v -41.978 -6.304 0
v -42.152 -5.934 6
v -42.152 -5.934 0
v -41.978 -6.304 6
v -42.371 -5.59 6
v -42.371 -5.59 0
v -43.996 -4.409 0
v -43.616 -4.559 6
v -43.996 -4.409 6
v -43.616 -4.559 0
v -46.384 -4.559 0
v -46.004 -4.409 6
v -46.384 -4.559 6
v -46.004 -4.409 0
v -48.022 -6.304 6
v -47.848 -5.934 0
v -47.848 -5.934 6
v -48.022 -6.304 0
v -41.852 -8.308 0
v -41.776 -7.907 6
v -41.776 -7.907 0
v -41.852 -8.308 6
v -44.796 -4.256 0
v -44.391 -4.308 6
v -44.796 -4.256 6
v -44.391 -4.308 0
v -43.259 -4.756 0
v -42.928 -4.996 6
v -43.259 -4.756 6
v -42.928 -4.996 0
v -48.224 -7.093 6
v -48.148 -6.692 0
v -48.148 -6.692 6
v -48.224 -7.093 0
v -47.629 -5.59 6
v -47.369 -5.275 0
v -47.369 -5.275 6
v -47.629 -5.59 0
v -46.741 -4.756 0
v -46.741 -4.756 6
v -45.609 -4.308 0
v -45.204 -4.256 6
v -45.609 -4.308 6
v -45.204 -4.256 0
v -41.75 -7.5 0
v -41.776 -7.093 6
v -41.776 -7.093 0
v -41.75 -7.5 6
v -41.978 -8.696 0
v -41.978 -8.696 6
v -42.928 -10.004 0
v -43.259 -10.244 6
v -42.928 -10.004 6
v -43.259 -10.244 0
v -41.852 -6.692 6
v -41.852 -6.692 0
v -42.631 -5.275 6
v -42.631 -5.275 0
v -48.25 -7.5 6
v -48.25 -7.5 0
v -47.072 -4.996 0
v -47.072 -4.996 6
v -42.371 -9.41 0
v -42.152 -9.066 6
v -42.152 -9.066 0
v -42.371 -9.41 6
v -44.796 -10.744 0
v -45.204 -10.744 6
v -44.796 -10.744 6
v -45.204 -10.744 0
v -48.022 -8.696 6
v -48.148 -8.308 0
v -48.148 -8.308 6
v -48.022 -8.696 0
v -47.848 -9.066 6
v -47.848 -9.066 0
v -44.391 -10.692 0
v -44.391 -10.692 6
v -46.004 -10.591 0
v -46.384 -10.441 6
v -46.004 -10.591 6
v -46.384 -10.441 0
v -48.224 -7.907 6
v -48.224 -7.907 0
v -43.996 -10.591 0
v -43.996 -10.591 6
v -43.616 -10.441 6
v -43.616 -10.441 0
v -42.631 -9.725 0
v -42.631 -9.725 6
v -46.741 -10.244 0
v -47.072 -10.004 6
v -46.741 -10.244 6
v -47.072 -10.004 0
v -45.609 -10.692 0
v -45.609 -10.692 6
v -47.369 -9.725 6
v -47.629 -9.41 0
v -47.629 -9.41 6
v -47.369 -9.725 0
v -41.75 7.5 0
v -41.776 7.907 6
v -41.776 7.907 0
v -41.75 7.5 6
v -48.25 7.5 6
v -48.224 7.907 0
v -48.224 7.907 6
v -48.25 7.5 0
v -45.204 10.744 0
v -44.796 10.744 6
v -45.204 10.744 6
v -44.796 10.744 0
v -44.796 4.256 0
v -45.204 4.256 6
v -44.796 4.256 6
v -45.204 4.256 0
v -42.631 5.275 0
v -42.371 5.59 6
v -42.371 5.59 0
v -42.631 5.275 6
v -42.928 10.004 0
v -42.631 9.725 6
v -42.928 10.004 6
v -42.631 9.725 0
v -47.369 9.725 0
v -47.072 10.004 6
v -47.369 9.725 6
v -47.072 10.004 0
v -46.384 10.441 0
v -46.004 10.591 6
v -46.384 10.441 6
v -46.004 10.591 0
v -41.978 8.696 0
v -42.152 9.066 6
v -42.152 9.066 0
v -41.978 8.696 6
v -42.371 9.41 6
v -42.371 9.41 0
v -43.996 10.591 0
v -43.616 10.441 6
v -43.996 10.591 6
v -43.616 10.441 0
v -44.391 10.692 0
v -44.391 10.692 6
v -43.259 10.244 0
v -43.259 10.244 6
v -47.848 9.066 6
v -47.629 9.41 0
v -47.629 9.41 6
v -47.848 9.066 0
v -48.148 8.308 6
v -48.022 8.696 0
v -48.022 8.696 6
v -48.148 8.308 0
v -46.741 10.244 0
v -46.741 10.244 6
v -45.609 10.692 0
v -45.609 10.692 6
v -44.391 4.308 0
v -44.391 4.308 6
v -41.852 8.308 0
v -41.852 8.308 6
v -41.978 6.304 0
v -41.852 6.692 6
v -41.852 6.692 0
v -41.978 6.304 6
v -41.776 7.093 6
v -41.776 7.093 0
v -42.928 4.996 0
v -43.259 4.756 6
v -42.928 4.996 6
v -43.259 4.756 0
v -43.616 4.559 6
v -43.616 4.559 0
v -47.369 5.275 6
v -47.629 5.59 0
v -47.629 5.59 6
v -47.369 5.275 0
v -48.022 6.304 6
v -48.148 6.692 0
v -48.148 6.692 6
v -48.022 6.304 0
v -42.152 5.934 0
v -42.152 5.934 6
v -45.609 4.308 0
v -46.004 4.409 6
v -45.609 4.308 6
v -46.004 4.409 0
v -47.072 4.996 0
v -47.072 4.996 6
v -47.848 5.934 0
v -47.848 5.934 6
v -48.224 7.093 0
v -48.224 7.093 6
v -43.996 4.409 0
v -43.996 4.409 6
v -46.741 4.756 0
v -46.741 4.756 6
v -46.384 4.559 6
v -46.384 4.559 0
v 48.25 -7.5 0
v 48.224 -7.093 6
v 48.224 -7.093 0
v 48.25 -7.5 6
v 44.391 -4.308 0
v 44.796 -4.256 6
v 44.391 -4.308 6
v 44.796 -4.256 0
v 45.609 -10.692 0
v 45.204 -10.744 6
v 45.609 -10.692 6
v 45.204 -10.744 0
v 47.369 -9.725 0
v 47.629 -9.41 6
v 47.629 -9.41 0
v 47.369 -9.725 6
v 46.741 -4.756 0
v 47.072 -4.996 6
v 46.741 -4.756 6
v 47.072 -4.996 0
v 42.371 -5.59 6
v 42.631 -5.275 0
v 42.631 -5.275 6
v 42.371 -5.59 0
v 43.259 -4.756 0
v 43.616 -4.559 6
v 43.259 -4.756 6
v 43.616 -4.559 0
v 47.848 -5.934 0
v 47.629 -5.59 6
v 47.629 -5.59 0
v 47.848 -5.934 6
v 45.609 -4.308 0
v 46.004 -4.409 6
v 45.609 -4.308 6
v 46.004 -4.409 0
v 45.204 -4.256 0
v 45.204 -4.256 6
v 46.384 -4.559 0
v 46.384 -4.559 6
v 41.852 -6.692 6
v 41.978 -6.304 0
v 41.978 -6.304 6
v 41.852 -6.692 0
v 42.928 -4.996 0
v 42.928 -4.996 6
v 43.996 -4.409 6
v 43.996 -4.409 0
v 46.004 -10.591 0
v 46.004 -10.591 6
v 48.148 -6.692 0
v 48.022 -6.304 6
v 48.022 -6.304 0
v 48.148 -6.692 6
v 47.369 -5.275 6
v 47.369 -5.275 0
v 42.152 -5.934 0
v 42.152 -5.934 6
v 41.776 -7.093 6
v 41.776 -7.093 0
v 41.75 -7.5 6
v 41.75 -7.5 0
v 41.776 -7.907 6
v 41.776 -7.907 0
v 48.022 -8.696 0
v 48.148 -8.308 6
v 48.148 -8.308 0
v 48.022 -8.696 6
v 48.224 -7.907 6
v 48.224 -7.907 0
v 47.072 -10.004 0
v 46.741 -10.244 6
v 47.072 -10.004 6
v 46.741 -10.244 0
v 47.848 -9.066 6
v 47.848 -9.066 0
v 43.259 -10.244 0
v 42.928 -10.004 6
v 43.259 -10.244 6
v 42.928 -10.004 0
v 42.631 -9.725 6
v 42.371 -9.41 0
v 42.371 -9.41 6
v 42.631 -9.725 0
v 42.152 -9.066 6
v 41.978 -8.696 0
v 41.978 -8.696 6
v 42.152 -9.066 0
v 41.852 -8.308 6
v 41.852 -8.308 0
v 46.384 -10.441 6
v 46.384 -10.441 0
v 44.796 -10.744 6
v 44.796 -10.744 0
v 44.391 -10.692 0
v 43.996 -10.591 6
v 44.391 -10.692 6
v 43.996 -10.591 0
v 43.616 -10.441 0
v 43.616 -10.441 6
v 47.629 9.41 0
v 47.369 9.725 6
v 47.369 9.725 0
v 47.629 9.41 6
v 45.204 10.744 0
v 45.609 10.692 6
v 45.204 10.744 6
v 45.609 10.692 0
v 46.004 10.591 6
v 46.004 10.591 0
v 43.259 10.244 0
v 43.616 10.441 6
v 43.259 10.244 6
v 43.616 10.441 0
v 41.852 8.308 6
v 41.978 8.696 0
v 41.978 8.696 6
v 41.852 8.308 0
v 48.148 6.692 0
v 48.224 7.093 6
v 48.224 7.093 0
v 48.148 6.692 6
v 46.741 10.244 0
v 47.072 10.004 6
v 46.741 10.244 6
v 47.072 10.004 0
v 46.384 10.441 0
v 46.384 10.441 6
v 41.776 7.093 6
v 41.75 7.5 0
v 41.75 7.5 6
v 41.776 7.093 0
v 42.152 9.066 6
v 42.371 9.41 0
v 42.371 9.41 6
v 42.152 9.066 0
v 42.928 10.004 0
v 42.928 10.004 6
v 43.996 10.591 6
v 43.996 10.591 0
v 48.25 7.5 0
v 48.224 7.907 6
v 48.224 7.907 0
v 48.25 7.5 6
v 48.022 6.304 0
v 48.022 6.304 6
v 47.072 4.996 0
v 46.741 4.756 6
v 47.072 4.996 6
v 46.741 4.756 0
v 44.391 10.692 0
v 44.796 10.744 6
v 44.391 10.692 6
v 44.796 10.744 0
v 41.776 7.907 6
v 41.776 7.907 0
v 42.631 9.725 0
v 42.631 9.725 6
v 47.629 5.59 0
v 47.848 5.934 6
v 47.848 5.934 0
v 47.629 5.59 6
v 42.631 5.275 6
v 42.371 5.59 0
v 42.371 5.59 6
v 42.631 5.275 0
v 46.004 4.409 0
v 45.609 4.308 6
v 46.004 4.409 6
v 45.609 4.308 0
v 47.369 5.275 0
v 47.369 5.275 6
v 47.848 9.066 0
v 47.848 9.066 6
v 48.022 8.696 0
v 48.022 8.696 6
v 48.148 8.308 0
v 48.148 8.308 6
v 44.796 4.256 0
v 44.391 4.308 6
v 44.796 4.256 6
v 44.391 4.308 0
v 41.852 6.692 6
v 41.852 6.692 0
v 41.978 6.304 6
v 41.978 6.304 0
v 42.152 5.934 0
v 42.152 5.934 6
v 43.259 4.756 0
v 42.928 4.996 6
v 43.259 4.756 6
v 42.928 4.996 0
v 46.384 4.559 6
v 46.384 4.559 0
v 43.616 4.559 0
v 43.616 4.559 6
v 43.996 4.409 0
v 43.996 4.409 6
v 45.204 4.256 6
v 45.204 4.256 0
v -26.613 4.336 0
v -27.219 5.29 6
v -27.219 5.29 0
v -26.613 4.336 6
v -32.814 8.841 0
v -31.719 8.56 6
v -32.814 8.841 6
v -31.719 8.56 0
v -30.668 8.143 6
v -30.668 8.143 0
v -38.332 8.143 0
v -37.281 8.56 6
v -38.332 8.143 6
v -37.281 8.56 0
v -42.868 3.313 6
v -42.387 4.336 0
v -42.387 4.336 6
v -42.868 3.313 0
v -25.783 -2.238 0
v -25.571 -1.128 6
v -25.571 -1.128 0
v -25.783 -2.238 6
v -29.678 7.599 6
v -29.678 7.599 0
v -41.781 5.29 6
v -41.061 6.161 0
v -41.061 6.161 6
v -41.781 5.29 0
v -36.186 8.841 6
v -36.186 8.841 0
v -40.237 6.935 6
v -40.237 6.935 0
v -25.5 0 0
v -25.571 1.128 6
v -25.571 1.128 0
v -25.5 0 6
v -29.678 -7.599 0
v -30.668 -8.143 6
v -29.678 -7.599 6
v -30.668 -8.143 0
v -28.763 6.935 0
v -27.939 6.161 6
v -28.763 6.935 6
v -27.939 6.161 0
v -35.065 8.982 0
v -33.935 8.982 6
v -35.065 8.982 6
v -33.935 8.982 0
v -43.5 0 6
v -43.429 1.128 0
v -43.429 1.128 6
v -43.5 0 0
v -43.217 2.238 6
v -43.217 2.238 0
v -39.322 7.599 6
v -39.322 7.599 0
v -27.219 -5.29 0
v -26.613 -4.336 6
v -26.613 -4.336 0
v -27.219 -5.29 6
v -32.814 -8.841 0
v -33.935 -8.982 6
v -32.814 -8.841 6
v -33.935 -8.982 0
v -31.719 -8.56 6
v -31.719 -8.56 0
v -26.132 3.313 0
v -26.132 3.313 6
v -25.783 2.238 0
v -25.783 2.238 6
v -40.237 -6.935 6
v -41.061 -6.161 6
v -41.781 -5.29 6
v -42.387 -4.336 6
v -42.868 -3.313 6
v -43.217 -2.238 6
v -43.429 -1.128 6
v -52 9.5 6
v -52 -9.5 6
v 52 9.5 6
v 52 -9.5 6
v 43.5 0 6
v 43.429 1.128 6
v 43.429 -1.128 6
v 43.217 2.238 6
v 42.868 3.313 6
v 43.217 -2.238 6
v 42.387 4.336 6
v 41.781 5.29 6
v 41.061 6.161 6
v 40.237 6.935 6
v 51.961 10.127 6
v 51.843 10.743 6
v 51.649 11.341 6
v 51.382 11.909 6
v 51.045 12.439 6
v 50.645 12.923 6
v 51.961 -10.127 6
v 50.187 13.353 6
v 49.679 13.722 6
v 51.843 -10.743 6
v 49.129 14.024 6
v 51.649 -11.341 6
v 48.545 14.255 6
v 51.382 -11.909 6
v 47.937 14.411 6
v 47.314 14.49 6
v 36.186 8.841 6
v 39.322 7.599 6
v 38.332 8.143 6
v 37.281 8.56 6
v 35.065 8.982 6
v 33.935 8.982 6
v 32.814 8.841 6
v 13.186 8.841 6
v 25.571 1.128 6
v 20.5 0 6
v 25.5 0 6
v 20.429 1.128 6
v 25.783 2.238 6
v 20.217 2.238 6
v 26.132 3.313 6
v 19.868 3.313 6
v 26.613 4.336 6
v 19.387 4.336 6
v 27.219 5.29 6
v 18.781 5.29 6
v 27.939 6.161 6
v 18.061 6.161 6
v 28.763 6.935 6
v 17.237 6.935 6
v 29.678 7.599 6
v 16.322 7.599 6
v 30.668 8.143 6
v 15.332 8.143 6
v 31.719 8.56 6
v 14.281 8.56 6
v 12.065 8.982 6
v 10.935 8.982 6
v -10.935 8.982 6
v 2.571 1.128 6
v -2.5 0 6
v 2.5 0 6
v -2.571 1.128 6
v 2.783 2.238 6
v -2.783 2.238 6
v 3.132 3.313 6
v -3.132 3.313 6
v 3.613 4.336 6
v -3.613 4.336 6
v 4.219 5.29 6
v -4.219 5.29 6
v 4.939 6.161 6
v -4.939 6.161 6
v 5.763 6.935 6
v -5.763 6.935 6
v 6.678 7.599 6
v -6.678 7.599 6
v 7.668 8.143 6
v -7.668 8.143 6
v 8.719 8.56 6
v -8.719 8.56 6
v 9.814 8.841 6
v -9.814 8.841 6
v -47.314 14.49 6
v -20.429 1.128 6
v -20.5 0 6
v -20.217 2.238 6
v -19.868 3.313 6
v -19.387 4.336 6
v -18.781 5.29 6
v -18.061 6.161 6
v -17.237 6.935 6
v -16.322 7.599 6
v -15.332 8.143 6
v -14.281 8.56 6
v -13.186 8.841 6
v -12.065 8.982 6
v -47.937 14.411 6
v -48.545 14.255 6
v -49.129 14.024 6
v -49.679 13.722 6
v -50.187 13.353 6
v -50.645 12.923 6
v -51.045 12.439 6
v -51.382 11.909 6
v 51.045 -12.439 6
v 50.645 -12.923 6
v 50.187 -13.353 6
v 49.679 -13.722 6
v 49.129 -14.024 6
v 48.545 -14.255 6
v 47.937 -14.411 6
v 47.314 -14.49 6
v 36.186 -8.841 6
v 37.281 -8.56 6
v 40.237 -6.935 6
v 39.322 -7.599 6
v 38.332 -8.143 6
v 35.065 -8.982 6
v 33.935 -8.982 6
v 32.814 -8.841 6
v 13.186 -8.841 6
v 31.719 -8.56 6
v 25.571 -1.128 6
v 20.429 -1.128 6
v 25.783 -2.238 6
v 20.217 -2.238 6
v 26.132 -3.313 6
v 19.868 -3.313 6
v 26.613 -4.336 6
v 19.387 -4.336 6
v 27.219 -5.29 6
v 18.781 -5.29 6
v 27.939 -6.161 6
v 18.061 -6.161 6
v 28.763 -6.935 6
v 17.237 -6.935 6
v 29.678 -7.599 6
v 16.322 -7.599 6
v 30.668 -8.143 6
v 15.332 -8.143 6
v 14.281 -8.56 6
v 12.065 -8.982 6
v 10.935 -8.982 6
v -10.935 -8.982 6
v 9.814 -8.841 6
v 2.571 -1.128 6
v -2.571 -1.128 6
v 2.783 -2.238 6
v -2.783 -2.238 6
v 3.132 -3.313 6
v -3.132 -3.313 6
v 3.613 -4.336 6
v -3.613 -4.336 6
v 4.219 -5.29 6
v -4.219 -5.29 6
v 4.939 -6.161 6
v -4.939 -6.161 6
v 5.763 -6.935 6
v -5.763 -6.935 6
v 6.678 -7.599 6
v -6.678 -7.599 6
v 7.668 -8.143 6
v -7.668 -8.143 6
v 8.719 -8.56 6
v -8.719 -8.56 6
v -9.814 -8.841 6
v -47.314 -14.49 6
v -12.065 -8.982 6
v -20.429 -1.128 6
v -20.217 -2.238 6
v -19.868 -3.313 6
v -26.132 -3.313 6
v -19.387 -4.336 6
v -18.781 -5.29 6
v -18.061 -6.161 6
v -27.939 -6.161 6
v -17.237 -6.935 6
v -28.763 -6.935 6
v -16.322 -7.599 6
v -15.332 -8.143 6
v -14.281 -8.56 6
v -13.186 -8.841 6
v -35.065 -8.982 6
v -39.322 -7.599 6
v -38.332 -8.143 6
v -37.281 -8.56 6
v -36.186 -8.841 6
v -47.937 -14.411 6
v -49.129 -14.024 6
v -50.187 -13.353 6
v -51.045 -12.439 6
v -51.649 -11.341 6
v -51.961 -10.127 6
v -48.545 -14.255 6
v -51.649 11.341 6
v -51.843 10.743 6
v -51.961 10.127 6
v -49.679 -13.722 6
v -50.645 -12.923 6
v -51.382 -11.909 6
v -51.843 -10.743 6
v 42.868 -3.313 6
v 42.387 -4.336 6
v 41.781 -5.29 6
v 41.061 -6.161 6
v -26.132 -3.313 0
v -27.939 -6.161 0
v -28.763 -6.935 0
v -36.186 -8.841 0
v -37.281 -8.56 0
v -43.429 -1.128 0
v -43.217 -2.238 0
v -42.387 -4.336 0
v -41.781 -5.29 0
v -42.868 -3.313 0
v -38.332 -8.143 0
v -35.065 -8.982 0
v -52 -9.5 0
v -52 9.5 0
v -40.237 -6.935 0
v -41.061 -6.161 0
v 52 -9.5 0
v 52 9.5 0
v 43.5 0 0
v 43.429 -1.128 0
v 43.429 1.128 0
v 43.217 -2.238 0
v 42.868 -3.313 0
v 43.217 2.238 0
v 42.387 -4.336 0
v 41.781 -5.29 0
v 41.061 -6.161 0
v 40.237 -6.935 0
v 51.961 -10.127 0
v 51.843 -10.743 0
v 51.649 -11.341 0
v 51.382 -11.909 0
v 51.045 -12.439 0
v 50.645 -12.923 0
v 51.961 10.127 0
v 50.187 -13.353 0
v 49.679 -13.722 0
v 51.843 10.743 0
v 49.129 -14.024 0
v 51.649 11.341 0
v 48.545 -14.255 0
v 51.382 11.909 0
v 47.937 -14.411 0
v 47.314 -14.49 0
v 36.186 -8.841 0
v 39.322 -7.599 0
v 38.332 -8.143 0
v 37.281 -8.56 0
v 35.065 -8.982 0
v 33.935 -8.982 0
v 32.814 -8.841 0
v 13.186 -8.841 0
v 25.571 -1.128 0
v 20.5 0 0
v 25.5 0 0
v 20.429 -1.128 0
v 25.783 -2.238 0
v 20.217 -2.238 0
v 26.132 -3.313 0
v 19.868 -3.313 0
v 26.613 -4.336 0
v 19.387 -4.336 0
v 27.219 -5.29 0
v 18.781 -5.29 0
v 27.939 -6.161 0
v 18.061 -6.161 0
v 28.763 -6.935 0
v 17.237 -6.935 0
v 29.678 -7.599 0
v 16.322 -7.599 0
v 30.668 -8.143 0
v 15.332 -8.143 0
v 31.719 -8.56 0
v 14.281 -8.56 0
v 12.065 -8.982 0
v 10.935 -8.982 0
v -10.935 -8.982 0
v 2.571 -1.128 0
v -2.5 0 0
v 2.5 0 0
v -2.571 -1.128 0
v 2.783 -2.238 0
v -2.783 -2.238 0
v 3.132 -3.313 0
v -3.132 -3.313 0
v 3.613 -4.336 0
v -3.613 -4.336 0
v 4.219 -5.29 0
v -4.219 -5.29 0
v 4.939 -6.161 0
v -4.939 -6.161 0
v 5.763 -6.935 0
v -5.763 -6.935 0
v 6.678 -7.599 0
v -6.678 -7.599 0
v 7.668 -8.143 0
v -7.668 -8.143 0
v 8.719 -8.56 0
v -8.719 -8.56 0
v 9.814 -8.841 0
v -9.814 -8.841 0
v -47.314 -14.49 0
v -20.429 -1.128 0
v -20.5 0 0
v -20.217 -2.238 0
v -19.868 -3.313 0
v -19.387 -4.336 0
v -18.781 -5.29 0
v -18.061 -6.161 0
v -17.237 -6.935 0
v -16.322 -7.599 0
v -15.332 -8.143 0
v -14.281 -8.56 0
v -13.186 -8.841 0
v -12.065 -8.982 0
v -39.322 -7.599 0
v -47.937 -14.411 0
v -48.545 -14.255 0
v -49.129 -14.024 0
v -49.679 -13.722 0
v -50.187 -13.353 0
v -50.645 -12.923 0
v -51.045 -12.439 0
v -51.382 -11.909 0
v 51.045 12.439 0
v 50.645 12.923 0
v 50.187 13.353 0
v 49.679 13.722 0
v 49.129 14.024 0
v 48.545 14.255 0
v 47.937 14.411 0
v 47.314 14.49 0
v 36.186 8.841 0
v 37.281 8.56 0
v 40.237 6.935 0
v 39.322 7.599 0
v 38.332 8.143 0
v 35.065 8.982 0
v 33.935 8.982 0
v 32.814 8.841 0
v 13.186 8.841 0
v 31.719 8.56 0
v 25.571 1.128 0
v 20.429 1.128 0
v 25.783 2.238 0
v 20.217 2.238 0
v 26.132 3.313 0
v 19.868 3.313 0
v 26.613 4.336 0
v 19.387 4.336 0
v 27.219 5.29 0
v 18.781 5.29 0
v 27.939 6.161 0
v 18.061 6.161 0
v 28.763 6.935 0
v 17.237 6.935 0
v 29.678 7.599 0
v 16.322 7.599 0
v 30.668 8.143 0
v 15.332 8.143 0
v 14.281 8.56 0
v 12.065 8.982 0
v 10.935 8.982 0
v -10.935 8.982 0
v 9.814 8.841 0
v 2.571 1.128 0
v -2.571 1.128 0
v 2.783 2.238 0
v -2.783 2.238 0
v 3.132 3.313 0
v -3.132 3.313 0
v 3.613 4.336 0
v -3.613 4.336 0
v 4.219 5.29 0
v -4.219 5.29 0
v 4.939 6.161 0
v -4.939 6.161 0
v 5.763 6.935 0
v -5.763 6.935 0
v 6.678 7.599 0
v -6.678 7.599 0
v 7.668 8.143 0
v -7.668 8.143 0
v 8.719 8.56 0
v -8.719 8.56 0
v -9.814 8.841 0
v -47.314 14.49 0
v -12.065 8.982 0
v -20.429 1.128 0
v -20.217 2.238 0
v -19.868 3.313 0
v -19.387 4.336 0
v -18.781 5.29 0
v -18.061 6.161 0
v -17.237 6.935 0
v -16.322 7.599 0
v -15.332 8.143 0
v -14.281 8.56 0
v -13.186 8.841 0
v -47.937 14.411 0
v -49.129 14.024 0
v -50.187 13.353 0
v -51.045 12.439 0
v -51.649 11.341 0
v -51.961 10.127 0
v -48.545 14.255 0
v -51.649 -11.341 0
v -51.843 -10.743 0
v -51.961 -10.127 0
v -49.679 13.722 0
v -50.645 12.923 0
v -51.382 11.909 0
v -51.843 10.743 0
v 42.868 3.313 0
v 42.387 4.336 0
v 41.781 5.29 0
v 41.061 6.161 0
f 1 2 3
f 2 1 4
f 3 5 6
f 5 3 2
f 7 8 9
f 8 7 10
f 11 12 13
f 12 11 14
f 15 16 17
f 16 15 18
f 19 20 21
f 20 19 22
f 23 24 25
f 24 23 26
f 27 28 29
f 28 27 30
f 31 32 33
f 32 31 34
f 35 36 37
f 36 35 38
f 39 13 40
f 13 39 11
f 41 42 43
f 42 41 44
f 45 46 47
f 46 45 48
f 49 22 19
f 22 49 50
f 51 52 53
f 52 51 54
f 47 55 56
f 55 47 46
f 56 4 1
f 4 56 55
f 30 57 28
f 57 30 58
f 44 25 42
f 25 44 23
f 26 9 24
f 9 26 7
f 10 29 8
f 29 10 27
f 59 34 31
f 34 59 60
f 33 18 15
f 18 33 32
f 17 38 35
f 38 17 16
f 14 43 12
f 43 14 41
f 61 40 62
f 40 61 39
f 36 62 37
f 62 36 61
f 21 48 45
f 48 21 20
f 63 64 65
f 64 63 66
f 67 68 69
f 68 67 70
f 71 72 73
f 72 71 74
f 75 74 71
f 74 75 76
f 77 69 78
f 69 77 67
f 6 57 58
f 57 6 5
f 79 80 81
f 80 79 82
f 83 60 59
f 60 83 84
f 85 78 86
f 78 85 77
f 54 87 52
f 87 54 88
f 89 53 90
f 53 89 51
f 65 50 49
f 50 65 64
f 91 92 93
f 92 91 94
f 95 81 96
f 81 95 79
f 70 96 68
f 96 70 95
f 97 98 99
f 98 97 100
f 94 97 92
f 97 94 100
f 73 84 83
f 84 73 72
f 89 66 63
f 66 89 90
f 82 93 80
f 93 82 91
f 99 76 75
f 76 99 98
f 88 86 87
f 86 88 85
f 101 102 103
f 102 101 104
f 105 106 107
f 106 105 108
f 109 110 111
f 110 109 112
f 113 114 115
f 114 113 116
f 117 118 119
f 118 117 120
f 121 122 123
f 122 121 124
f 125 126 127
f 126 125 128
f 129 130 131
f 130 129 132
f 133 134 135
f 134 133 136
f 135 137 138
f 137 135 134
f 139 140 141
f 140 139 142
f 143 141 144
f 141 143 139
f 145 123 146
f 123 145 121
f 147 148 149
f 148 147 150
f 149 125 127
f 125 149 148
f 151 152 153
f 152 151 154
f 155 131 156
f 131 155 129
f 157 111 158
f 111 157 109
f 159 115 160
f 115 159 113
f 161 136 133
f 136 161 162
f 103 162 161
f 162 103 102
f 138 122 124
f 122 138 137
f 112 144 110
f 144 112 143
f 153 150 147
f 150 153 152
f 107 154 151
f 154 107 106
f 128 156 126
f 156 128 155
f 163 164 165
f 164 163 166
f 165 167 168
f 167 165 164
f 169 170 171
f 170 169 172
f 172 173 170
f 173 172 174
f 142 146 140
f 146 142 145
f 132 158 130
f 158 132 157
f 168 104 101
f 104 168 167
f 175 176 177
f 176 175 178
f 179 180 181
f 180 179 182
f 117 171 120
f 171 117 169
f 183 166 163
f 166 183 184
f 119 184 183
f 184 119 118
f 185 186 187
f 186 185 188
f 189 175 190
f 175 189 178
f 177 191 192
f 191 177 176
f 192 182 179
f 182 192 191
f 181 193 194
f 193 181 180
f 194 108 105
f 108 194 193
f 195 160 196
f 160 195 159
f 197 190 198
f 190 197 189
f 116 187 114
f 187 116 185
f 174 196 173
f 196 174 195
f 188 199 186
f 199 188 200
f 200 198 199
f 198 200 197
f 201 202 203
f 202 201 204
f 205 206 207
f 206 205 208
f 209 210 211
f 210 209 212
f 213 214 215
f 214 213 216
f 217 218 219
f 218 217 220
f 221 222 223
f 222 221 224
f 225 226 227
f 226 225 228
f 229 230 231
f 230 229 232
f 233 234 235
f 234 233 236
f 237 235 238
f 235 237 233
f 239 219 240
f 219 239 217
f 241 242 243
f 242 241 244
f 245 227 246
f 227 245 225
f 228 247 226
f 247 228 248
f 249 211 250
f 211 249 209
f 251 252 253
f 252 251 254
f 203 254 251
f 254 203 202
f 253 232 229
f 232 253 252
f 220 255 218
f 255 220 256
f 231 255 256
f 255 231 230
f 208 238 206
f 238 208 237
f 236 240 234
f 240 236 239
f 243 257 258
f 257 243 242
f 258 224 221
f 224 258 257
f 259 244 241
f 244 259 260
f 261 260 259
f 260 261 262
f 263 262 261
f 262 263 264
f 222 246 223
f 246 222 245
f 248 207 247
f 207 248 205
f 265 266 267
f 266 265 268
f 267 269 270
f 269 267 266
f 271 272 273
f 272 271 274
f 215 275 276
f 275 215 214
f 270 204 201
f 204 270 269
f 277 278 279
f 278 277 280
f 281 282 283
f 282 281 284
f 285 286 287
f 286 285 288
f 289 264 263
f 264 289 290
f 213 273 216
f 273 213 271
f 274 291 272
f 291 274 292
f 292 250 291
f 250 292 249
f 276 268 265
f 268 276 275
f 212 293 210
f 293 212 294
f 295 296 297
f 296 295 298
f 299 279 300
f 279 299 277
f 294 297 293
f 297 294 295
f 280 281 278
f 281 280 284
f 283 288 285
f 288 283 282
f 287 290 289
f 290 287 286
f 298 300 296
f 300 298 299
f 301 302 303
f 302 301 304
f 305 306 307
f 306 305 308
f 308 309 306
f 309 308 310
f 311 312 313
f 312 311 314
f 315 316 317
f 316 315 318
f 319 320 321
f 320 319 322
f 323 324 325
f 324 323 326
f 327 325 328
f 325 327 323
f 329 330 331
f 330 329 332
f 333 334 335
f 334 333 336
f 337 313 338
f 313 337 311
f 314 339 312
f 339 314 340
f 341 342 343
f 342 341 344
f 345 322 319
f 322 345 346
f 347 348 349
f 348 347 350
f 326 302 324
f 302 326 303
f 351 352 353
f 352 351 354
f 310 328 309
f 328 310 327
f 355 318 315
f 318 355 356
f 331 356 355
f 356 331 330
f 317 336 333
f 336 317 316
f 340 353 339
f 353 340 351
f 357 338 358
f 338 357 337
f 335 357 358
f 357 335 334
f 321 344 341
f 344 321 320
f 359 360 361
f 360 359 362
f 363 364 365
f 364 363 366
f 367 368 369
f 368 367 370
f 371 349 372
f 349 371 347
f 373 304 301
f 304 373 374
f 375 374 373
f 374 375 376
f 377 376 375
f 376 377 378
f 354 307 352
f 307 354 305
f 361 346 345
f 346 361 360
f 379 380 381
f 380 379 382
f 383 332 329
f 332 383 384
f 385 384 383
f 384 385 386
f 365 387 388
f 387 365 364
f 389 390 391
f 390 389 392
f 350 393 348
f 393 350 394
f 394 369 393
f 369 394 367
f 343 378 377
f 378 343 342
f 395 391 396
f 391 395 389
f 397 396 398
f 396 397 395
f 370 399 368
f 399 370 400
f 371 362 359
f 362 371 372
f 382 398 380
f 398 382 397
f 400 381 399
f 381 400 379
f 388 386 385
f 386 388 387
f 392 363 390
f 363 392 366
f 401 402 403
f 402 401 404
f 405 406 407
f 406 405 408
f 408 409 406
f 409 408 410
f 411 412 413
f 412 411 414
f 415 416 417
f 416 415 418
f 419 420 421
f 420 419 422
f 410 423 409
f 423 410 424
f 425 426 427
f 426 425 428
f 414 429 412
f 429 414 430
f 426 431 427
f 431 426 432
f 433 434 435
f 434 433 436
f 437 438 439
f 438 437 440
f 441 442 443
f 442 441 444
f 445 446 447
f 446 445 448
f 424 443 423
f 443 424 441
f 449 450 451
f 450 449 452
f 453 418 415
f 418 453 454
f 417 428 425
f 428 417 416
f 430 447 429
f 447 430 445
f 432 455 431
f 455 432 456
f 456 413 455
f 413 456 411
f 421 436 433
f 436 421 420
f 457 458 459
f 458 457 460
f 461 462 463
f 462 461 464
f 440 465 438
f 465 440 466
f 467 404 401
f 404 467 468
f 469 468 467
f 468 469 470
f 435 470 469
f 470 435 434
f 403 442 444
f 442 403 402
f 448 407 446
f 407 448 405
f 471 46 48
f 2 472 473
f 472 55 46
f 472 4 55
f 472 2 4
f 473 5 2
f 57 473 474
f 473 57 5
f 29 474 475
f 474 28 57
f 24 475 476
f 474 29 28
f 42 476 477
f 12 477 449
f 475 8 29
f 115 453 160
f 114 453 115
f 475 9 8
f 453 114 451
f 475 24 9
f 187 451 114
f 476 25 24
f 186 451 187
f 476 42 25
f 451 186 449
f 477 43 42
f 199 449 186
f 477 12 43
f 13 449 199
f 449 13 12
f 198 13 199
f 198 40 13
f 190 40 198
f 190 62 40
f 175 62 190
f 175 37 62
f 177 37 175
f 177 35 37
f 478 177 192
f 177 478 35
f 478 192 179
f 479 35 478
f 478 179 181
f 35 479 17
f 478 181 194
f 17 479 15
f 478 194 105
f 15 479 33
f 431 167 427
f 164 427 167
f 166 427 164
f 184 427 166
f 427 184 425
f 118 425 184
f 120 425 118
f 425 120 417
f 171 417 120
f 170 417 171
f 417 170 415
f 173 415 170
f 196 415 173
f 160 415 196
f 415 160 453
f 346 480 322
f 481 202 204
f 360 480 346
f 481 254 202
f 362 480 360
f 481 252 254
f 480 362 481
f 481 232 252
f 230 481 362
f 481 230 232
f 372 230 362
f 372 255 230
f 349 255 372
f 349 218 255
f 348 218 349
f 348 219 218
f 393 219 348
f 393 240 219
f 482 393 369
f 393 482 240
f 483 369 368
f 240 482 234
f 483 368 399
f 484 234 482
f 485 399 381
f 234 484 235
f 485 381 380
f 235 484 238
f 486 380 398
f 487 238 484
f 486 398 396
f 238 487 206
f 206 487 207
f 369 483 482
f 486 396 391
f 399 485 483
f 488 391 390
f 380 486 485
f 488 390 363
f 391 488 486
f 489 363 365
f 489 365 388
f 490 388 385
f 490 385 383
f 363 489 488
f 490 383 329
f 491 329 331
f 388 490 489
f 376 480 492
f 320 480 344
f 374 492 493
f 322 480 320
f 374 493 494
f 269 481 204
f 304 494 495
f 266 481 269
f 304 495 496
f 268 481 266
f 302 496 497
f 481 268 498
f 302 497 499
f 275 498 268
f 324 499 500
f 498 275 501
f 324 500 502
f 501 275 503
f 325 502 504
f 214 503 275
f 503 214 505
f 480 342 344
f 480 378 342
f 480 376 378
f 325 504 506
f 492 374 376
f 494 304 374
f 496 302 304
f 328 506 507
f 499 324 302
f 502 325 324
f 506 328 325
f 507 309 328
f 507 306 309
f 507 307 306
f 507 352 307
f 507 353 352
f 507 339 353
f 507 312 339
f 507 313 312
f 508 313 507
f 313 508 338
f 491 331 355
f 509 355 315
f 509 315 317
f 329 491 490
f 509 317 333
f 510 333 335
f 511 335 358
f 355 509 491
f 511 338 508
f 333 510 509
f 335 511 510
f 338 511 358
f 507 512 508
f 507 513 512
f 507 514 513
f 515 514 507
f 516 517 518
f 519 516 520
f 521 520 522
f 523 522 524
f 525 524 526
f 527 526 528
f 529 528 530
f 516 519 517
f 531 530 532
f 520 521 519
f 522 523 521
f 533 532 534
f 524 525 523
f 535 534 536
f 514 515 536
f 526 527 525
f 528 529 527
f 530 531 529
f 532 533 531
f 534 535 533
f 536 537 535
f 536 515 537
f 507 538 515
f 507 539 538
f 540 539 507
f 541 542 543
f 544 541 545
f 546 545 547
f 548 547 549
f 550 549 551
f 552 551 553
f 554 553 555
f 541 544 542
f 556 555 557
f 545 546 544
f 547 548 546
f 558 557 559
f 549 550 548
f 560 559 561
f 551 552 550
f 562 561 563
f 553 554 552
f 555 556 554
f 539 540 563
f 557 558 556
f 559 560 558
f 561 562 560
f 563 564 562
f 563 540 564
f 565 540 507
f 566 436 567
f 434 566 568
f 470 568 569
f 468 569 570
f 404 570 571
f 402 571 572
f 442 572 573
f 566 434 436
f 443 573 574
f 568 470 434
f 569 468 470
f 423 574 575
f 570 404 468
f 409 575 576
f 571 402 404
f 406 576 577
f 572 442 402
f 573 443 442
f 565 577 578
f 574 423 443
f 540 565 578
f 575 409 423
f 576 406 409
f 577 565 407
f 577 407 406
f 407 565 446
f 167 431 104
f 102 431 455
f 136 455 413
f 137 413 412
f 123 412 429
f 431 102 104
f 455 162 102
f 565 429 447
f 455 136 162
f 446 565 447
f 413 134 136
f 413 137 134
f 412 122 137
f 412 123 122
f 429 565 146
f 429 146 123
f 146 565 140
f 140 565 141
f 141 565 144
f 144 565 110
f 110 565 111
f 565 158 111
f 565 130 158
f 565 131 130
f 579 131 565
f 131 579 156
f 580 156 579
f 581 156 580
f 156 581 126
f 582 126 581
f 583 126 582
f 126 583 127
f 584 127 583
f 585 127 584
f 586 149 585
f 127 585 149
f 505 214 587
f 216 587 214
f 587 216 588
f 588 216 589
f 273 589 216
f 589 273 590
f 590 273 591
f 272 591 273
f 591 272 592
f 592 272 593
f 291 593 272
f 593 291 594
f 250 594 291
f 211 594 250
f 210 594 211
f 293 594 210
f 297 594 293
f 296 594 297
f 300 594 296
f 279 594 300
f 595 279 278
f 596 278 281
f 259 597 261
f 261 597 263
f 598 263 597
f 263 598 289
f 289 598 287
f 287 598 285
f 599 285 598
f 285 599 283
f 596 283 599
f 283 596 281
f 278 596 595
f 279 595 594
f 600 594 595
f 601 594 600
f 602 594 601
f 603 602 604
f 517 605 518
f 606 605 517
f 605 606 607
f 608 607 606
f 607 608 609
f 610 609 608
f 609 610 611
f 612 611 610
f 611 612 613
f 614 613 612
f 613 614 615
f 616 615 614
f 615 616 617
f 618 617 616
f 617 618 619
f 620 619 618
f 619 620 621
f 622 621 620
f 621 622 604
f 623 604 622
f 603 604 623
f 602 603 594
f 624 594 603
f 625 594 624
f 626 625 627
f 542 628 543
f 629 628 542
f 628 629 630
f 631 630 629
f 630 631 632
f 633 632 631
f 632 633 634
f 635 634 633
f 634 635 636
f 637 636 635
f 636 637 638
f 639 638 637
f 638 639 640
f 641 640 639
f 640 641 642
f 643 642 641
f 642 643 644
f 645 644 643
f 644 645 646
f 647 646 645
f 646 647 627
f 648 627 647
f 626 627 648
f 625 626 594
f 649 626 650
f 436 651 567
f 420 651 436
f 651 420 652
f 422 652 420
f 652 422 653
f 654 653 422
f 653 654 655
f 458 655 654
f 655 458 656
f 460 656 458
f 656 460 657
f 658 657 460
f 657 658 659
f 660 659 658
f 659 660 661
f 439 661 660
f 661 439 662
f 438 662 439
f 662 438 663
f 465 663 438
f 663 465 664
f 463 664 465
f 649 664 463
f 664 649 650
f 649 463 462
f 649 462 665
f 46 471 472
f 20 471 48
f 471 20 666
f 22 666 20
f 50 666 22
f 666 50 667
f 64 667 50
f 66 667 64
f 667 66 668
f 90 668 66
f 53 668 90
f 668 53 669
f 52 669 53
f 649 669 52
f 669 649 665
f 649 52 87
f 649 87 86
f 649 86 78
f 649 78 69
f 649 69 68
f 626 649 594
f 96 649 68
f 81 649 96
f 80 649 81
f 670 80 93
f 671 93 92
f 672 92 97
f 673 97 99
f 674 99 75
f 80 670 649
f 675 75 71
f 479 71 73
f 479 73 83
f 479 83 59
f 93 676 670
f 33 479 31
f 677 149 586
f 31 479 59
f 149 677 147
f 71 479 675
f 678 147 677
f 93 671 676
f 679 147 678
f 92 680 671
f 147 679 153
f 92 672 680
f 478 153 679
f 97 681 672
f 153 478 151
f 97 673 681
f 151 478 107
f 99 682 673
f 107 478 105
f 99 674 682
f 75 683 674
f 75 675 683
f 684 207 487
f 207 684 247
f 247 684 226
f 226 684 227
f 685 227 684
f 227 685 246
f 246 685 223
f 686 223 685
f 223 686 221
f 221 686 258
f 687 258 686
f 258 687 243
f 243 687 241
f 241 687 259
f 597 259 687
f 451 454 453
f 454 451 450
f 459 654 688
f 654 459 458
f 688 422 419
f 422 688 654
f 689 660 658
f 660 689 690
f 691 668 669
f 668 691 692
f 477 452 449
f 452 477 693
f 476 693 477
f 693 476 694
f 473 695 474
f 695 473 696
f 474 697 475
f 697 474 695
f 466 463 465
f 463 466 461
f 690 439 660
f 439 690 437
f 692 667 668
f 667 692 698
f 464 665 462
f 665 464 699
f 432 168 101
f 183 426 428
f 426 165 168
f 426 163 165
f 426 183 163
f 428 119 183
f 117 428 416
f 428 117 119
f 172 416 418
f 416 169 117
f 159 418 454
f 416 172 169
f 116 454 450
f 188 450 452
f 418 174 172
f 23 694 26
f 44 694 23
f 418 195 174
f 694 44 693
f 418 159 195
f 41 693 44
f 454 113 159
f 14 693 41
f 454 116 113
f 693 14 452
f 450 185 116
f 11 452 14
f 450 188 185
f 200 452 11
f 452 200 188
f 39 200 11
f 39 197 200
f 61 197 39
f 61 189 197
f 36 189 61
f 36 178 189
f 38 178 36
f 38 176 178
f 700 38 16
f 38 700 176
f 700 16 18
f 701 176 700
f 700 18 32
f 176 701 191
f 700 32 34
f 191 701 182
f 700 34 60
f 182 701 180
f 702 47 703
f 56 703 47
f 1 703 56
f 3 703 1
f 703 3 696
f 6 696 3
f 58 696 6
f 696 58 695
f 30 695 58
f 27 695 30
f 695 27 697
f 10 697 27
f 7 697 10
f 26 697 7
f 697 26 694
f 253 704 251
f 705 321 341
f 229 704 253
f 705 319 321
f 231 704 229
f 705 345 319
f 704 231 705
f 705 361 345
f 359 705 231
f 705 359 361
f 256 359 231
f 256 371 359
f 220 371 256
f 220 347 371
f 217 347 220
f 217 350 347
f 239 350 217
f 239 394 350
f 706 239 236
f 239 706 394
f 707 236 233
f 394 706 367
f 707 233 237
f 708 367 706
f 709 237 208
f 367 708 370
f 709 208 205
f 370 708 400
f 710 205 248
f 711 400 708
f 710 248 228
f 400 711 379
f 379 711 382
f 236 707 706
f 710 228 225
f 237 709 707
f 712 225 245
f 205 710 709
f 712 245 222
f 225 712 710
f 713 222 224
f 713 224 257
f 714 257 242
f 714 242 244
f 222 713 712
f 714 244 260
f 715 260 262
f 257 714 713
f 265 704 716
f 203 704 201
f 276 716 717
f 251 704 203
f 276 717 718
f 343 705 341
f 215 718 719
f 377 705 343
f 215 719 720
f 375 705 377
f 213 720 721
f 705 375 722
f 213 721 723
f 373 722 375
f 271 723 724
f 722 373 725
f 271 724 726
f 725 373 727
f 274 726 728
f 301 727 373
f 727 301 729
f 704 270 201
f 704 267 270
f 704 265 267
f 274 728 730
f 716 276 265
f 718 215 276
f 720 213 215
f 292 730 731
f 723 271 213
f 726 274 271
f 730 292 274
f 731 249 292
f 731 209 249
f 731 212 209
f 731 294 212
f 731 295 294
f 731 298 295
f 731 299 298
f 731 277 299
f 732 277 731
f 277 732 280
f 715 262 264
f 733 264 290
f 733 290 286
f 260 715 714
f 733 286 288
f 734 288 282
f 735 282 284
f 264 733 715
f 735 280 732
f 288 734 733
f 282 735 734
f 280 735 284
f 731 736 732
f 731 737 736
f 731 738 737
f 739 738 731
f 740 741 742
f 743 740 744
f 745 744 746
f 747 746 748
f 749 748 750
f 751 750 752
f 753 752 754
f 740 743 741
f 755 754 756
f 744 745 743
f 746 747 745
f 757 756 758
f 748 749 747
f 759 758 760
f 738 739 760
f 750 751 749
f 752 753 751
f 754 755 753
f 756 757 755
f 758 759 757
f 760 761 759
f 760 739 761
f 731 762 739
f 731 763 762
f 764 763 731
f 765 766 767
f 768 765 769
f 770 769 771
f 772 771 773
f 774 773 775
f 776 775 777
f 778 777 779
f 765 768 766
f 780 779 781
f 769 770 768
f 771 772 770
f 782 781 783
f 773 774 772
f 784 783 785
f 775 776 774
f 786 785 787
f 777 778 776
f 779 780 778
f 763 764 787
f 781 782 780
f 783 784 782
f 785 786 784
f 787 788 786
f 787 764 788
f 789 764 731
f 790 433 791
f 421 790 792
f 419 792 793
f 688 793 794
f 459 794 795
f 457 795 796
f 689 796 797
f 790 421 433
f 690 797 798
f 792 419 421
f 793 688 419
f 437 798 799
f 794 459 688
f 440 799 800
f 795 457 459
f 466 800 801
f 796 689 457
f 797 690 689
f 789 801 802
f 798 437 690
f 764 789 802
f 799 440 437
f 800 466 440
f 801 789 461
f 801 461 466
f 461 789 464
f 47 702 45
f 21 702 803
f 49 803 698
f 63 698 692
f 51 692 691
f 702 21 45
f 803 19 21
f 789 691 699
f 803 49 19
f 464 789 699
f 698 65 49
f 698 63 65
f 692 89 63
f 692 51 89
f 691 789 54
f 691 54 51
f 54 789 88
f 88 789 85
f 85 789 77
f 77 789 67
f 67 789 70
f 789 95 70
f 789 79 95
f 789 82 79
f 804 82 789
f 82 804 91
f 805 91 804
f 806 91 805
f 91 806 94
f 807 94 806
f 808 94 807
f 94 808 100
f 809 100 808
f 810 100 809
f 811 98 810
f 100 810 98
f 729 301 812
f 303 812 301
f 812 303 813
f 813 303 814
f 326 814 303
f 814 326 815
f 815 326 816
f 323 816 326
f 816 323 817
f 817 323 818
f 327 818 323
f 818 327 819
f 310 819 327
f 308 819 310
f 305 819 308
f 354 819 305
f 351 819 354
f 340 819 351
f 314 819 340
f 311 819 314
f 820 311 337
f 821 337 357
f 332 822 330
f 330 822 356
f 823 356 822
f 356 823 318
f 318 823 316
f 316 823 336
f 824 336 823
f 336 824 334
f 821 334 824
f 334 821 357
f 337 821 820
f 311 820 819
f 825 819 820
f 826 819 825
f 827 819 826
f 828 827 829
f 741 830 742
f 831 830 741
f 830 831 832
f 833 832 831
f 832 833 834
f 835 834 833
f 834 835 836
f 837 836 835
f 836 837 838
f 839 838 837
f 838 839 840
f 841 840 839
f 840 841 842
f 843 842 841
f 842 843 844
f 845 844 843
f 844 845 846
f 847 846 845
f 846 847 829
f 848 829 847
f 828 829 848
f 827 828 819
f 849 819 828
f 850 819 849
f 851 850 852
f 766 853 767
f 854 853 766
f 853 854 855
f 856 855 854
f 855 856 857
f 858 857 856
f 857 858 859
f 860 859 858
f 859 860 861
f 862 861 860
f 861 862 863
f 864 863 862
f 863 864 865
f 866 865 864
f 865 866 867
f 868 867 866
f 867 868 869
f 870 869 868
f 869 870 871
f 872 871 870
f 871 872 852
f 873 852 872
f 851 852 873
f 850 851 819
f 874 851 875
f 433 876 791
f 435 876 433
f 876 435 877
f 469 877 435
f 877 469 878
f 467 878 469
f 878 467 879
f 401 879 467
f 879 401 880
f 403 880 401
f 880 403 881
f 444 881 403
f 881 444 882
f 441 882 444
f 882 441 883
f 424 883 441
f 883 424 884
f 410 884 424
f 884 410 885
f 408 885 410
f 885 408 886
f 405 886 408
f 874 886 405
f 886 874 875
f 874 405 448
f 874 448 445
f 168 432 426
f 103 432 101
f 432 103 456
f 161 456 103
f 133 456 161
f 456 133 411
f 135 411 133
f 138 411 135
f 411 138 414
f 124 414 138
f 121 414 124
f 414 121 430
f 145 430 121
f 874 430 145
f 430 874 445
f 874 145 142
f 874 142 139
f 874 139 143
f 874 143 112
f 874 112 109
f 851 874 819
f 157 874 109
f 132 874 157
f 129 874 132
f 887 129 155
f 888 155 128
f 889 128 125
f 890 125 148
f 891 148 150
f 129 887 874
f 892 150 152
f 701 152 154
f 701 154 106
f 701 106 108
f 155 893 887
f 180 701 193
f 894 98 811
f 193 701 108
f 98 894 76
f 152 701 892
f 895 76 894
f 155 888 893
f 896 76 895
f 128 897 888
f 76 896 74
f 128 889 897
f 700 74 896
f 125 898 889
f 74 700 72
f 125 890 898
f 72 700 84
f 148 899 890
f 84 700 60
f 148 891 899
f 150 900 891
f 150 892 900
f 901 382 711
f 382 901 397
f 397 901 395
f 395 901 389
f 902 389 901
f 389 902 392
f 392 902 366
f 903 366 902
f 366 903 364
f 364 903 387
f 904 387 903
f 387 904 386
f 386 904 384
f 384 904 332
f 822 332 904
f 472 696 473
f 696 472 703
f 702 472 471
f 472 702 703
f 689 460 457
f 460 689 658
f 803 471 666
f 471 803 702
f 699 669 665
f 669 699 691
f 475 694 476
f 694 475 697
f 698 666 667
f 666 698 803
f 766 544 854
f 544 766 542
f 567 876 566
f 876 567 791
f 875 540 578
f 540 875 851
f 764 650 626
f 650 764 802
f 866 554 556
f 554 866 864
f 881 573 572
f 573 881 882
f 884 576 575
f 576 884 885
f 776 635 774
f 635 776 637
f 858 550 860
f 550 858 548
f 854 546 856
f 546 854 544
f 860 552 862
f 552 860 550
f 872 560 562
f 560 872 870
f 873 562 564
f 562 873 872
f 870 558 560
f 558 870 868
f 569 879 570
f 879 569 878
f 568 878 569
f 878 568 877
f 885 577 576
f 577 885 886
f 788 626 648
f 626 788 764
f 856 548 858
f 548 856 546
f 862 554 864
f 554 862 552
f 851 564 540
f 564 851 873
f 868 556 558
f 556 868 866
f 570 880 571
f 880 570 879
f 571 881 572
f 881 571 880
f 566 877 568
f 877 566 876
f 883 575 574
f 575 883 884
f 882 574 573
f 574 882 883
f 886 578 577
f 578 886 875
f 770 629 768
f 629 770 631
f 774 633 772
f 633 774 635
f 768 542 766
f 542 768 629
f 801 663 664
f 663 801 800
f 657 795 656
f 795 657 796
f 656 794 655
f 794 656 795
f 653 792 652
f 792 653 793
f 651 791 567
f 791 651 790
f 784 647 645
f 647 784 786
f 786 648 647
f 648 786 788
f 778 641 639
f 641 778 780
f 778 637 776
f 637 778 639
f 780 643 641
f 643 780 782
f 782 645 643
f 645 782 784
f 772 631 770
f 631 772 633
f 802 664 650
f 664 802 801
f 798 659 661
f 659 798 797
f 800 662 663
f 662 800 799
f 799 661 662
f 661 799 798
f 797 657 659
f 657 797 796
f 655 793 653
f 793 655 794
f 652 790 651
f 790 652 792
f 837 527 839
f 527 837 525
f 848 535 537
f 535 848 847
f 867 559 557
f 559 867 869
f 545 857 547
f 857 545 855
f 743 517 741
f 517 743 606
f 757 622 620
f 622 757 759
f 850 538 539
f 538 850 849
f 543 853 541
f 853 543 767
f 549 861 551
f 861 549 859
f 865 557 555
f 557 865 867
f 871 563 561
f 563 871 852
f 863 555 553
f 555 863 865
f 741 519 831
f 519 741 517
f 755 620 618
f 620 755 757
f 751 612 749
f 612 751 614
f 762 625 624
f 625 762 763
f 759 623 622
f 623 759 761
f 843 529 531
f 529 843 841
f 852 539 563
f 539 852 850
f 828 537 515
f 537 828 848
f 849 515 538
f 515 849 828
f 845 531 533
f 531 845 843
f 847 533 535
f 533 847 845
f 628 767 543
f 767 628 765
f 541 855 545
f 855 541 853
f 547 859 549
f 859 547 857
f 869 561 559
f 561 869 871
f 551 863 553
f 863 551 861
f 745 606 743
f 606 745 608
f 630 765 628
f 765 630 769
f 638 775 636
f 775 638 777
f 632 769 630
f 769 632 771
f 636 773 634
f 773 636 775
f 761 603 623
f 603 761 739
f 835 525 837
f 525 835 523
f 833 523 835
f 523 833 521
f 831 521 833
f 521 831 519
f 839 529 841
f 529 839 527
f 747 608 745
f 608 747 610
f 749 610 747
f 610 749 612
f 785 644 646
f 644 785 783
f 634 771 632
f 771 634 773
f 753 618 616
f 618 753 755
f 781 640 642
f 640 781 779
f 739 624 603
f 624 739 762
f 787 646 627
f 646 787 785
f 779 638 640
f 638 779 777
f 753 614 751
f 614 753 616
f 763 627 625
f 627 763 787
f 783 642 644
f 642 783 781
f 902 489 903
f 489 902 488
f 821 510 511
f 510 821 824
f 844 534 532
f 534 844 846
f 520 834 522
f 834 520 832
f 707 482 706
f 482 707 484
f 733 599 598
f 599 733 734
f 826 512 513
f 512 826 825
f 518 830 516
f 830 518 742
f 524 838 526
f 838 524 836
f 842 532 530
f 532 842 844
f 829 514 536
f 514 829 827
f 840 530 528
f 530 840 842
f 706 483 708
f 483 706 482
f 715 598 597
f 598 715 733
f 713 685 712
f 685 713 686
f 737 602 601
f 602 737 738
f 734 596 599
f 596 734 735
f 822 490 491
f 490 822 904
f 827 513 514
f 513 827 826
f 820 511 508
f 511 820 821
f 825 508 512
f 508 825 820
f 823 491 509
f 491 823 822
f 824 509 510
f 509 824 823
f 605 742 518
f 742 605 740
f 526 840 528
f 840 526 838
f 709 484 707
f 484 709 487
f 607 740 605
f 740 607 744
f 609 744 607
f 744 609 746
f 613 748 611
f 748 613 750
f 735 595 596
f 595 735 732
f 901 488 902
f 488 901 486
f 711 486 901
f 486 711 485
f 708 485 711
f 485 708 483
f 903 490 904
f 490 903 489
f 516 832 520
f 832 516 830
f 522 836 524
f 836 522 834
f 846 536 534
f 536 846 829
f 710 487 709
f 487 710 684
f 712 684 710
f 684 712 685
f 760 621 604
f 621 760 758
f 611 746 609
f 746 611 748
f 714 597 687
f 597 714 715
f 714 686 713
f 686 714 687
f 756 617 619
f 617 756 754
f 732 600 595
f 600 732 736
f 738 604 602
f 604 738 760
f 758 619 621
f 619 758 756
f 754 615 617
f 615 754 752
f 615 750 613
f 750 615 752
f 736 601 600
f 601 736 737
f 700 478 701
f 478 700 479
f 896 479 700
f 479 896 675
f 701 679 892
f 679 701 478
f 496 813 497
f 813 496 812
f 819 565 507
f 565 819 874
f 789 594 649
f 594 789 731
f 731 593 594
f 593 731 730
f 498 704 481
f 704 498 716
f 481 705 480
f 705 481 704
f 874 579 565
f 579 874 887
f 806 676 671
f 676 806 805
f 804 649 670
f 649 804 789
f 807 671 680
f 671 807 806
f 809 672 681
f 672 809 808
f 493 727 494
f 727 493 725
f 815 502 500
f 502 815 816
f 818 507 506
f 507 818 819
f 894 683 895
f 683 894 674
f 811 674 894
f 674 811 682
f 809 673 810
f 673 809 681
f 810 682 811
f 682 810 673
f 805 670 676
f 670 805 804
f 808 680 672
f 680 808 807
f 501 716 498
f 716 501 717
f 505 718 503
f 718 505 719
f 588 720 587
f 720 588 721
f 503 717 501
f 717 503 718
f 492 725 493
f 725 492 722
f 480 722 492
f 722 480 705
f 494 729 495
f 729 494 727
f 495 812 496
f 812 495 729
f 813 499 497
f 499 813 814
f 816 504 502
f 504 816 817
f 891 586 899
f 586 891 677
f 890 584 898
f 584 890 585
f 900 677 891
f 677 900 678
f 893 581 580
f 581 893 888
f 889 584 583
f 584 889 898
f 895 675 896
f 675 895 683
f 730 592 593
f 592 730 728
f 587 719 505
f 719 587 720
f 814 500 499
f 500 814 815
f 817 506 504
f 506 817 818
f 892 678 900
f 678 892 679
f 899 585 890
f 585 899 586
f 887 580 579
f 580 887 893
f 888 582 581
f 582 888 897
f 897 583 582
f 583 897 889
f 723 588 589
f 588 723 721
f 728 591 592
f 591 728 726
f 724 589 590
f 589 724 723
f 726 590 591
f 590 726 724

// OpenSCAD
$fn = 50;


difference() {
	union() {
		hull() {
			translate(v = [-47.0000000000, 9.5000000000, 0]) {
				cylinder(h = 6, r = 5);
			}
			translate(v = [47.0000000000, 9.5000000000, 0]) {
				cylinder(h = 6, r = 5);
			}
			translate(v = [-47.0000000000, -9.5000000000, 0]) {
				cylinder(h = 6, r = 5);
			}
			translate(v = [47.0000000000, -9.5000000000, 0]) {
				cylinder(h = 6, r = 5);
			}
		}
	}
	union() {
		#translate(v = [-45.0000000000, -7.5000000000, -100.0000000000]) {
			cylinder(h = 200, r = 3.2500000000);
		}
		#translate(v = [-45.0000000000, 7.5000000000, -100.0000000000]) {
			cylinder(h = 200, r = 3.2500000000);
		}
		#translate(v = [45.0000000000, -7.5000000000, -100.0000000000]) {
			cylinder(h = 200, r = 3.2500000000);
		}
		#translate(v = [45.0000000000, 7.5000000000, -100.0000000000]) {
			cylinder(h = 200, r = 3.2500000000);
		}
		#translate(v = [-34.5000000000, 0, 0]) {
			cylinder(h = 6, r = 9.0000000000);
		}
		#translate(v = [-11.5000000000, 0, 0]) {
			cylinder(h = 6, r = 9.0000000000);
		}
		#translate(v = [11.5000000000, 0, 0]) {
			cylinder(h = 6, r = 9.0000000000);
		}
		#translate(v = [34.5000000000, 0, 0]) {
			cylinder(h = 6, r = 9.0000000000);
		}
	}
}
